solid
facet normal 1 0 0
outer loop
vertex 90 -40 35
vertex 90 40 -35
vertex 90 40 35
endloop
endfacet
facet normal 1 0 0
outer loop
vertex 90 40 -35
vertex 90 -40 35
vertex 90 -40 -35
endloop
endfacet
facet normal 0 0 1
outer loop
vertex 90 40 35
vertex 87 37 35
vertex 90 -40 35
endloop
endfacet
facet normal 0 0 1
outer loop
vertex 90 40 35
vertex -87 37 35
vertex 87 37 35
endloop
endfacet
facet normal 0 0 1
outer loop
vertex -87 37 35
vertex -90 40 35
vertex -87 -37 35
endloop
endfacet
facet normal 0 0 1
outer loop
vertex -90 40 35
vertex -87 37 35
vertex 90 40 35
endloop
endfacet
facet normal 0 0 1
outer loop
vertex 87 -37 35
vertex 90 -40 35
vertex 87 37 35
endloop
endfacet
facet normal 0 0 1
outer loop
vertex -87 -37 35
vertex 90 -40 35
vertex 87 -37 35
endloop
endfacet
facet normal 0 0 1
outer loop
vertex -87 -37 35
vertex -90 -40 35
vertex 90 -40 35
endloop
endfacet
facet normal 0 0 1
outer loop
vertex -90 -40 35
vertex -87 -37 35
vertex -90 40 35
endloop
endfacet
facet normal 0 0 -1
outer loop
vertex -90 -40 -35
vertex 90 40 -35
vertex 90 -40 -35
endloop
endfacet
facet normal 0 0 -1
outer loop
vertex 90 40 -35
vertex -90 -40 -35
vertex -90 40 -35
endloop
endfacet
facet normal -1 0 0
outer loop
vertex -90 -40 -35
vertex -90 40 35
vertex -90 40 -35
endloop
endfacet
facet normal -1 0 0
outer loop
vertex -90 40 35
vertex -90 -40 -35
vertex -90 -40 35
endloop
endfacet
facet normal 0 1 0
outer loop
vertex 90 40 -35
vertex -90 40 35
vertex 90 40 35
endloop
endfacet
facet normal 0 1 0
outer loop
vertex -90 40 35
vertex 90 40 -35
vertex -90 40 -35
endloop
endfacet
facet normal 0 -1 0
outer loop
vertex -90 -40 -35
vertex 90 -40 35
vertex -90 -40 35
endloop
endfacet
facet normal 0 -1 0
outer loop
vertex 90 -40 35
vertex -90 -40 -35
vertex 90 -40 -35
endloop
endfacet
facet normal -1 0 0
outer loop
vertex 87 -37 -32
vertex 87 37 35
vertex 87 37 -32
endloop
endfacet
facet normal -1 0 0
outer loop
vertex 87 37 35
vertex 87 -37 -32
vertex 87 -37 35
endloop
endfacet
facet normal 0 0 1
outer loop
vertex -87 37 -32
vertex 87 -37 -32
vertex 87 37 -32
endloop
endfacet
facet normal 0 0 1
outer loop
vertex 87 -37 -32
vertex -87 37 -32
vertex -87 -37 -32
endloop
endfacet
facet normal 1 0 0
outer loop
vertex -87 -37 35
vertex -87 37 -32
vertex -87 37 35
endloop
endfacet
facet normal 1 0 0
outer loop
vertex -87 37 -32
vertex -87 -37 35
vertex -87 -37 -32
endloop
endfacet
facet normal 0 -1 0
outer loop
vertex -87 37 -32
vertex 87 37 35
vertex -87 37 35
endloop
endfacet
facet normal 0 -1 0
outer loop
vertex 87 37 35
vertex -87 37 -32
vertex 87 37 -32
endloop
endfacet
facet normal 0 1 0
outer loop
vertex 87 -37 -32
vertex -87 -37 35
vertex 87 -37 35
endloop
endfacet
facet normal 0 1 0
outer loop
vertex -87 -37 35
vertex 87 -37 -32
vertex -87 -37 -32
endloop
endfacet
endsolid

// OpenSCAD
// ========================================
// a 180 x 80 x 70 mm enclosure with 3 mm wall thickness
// NeuroCAD canonical IR; dimensions are millimetres
// ========================================
$fn = 48;

difference() {
  cube(size=[180, 80, 70], center=true);
  translate([0, 0, 1.6]) {
    cube(size=[174, 74, 67.2], center=true);
  }
}
